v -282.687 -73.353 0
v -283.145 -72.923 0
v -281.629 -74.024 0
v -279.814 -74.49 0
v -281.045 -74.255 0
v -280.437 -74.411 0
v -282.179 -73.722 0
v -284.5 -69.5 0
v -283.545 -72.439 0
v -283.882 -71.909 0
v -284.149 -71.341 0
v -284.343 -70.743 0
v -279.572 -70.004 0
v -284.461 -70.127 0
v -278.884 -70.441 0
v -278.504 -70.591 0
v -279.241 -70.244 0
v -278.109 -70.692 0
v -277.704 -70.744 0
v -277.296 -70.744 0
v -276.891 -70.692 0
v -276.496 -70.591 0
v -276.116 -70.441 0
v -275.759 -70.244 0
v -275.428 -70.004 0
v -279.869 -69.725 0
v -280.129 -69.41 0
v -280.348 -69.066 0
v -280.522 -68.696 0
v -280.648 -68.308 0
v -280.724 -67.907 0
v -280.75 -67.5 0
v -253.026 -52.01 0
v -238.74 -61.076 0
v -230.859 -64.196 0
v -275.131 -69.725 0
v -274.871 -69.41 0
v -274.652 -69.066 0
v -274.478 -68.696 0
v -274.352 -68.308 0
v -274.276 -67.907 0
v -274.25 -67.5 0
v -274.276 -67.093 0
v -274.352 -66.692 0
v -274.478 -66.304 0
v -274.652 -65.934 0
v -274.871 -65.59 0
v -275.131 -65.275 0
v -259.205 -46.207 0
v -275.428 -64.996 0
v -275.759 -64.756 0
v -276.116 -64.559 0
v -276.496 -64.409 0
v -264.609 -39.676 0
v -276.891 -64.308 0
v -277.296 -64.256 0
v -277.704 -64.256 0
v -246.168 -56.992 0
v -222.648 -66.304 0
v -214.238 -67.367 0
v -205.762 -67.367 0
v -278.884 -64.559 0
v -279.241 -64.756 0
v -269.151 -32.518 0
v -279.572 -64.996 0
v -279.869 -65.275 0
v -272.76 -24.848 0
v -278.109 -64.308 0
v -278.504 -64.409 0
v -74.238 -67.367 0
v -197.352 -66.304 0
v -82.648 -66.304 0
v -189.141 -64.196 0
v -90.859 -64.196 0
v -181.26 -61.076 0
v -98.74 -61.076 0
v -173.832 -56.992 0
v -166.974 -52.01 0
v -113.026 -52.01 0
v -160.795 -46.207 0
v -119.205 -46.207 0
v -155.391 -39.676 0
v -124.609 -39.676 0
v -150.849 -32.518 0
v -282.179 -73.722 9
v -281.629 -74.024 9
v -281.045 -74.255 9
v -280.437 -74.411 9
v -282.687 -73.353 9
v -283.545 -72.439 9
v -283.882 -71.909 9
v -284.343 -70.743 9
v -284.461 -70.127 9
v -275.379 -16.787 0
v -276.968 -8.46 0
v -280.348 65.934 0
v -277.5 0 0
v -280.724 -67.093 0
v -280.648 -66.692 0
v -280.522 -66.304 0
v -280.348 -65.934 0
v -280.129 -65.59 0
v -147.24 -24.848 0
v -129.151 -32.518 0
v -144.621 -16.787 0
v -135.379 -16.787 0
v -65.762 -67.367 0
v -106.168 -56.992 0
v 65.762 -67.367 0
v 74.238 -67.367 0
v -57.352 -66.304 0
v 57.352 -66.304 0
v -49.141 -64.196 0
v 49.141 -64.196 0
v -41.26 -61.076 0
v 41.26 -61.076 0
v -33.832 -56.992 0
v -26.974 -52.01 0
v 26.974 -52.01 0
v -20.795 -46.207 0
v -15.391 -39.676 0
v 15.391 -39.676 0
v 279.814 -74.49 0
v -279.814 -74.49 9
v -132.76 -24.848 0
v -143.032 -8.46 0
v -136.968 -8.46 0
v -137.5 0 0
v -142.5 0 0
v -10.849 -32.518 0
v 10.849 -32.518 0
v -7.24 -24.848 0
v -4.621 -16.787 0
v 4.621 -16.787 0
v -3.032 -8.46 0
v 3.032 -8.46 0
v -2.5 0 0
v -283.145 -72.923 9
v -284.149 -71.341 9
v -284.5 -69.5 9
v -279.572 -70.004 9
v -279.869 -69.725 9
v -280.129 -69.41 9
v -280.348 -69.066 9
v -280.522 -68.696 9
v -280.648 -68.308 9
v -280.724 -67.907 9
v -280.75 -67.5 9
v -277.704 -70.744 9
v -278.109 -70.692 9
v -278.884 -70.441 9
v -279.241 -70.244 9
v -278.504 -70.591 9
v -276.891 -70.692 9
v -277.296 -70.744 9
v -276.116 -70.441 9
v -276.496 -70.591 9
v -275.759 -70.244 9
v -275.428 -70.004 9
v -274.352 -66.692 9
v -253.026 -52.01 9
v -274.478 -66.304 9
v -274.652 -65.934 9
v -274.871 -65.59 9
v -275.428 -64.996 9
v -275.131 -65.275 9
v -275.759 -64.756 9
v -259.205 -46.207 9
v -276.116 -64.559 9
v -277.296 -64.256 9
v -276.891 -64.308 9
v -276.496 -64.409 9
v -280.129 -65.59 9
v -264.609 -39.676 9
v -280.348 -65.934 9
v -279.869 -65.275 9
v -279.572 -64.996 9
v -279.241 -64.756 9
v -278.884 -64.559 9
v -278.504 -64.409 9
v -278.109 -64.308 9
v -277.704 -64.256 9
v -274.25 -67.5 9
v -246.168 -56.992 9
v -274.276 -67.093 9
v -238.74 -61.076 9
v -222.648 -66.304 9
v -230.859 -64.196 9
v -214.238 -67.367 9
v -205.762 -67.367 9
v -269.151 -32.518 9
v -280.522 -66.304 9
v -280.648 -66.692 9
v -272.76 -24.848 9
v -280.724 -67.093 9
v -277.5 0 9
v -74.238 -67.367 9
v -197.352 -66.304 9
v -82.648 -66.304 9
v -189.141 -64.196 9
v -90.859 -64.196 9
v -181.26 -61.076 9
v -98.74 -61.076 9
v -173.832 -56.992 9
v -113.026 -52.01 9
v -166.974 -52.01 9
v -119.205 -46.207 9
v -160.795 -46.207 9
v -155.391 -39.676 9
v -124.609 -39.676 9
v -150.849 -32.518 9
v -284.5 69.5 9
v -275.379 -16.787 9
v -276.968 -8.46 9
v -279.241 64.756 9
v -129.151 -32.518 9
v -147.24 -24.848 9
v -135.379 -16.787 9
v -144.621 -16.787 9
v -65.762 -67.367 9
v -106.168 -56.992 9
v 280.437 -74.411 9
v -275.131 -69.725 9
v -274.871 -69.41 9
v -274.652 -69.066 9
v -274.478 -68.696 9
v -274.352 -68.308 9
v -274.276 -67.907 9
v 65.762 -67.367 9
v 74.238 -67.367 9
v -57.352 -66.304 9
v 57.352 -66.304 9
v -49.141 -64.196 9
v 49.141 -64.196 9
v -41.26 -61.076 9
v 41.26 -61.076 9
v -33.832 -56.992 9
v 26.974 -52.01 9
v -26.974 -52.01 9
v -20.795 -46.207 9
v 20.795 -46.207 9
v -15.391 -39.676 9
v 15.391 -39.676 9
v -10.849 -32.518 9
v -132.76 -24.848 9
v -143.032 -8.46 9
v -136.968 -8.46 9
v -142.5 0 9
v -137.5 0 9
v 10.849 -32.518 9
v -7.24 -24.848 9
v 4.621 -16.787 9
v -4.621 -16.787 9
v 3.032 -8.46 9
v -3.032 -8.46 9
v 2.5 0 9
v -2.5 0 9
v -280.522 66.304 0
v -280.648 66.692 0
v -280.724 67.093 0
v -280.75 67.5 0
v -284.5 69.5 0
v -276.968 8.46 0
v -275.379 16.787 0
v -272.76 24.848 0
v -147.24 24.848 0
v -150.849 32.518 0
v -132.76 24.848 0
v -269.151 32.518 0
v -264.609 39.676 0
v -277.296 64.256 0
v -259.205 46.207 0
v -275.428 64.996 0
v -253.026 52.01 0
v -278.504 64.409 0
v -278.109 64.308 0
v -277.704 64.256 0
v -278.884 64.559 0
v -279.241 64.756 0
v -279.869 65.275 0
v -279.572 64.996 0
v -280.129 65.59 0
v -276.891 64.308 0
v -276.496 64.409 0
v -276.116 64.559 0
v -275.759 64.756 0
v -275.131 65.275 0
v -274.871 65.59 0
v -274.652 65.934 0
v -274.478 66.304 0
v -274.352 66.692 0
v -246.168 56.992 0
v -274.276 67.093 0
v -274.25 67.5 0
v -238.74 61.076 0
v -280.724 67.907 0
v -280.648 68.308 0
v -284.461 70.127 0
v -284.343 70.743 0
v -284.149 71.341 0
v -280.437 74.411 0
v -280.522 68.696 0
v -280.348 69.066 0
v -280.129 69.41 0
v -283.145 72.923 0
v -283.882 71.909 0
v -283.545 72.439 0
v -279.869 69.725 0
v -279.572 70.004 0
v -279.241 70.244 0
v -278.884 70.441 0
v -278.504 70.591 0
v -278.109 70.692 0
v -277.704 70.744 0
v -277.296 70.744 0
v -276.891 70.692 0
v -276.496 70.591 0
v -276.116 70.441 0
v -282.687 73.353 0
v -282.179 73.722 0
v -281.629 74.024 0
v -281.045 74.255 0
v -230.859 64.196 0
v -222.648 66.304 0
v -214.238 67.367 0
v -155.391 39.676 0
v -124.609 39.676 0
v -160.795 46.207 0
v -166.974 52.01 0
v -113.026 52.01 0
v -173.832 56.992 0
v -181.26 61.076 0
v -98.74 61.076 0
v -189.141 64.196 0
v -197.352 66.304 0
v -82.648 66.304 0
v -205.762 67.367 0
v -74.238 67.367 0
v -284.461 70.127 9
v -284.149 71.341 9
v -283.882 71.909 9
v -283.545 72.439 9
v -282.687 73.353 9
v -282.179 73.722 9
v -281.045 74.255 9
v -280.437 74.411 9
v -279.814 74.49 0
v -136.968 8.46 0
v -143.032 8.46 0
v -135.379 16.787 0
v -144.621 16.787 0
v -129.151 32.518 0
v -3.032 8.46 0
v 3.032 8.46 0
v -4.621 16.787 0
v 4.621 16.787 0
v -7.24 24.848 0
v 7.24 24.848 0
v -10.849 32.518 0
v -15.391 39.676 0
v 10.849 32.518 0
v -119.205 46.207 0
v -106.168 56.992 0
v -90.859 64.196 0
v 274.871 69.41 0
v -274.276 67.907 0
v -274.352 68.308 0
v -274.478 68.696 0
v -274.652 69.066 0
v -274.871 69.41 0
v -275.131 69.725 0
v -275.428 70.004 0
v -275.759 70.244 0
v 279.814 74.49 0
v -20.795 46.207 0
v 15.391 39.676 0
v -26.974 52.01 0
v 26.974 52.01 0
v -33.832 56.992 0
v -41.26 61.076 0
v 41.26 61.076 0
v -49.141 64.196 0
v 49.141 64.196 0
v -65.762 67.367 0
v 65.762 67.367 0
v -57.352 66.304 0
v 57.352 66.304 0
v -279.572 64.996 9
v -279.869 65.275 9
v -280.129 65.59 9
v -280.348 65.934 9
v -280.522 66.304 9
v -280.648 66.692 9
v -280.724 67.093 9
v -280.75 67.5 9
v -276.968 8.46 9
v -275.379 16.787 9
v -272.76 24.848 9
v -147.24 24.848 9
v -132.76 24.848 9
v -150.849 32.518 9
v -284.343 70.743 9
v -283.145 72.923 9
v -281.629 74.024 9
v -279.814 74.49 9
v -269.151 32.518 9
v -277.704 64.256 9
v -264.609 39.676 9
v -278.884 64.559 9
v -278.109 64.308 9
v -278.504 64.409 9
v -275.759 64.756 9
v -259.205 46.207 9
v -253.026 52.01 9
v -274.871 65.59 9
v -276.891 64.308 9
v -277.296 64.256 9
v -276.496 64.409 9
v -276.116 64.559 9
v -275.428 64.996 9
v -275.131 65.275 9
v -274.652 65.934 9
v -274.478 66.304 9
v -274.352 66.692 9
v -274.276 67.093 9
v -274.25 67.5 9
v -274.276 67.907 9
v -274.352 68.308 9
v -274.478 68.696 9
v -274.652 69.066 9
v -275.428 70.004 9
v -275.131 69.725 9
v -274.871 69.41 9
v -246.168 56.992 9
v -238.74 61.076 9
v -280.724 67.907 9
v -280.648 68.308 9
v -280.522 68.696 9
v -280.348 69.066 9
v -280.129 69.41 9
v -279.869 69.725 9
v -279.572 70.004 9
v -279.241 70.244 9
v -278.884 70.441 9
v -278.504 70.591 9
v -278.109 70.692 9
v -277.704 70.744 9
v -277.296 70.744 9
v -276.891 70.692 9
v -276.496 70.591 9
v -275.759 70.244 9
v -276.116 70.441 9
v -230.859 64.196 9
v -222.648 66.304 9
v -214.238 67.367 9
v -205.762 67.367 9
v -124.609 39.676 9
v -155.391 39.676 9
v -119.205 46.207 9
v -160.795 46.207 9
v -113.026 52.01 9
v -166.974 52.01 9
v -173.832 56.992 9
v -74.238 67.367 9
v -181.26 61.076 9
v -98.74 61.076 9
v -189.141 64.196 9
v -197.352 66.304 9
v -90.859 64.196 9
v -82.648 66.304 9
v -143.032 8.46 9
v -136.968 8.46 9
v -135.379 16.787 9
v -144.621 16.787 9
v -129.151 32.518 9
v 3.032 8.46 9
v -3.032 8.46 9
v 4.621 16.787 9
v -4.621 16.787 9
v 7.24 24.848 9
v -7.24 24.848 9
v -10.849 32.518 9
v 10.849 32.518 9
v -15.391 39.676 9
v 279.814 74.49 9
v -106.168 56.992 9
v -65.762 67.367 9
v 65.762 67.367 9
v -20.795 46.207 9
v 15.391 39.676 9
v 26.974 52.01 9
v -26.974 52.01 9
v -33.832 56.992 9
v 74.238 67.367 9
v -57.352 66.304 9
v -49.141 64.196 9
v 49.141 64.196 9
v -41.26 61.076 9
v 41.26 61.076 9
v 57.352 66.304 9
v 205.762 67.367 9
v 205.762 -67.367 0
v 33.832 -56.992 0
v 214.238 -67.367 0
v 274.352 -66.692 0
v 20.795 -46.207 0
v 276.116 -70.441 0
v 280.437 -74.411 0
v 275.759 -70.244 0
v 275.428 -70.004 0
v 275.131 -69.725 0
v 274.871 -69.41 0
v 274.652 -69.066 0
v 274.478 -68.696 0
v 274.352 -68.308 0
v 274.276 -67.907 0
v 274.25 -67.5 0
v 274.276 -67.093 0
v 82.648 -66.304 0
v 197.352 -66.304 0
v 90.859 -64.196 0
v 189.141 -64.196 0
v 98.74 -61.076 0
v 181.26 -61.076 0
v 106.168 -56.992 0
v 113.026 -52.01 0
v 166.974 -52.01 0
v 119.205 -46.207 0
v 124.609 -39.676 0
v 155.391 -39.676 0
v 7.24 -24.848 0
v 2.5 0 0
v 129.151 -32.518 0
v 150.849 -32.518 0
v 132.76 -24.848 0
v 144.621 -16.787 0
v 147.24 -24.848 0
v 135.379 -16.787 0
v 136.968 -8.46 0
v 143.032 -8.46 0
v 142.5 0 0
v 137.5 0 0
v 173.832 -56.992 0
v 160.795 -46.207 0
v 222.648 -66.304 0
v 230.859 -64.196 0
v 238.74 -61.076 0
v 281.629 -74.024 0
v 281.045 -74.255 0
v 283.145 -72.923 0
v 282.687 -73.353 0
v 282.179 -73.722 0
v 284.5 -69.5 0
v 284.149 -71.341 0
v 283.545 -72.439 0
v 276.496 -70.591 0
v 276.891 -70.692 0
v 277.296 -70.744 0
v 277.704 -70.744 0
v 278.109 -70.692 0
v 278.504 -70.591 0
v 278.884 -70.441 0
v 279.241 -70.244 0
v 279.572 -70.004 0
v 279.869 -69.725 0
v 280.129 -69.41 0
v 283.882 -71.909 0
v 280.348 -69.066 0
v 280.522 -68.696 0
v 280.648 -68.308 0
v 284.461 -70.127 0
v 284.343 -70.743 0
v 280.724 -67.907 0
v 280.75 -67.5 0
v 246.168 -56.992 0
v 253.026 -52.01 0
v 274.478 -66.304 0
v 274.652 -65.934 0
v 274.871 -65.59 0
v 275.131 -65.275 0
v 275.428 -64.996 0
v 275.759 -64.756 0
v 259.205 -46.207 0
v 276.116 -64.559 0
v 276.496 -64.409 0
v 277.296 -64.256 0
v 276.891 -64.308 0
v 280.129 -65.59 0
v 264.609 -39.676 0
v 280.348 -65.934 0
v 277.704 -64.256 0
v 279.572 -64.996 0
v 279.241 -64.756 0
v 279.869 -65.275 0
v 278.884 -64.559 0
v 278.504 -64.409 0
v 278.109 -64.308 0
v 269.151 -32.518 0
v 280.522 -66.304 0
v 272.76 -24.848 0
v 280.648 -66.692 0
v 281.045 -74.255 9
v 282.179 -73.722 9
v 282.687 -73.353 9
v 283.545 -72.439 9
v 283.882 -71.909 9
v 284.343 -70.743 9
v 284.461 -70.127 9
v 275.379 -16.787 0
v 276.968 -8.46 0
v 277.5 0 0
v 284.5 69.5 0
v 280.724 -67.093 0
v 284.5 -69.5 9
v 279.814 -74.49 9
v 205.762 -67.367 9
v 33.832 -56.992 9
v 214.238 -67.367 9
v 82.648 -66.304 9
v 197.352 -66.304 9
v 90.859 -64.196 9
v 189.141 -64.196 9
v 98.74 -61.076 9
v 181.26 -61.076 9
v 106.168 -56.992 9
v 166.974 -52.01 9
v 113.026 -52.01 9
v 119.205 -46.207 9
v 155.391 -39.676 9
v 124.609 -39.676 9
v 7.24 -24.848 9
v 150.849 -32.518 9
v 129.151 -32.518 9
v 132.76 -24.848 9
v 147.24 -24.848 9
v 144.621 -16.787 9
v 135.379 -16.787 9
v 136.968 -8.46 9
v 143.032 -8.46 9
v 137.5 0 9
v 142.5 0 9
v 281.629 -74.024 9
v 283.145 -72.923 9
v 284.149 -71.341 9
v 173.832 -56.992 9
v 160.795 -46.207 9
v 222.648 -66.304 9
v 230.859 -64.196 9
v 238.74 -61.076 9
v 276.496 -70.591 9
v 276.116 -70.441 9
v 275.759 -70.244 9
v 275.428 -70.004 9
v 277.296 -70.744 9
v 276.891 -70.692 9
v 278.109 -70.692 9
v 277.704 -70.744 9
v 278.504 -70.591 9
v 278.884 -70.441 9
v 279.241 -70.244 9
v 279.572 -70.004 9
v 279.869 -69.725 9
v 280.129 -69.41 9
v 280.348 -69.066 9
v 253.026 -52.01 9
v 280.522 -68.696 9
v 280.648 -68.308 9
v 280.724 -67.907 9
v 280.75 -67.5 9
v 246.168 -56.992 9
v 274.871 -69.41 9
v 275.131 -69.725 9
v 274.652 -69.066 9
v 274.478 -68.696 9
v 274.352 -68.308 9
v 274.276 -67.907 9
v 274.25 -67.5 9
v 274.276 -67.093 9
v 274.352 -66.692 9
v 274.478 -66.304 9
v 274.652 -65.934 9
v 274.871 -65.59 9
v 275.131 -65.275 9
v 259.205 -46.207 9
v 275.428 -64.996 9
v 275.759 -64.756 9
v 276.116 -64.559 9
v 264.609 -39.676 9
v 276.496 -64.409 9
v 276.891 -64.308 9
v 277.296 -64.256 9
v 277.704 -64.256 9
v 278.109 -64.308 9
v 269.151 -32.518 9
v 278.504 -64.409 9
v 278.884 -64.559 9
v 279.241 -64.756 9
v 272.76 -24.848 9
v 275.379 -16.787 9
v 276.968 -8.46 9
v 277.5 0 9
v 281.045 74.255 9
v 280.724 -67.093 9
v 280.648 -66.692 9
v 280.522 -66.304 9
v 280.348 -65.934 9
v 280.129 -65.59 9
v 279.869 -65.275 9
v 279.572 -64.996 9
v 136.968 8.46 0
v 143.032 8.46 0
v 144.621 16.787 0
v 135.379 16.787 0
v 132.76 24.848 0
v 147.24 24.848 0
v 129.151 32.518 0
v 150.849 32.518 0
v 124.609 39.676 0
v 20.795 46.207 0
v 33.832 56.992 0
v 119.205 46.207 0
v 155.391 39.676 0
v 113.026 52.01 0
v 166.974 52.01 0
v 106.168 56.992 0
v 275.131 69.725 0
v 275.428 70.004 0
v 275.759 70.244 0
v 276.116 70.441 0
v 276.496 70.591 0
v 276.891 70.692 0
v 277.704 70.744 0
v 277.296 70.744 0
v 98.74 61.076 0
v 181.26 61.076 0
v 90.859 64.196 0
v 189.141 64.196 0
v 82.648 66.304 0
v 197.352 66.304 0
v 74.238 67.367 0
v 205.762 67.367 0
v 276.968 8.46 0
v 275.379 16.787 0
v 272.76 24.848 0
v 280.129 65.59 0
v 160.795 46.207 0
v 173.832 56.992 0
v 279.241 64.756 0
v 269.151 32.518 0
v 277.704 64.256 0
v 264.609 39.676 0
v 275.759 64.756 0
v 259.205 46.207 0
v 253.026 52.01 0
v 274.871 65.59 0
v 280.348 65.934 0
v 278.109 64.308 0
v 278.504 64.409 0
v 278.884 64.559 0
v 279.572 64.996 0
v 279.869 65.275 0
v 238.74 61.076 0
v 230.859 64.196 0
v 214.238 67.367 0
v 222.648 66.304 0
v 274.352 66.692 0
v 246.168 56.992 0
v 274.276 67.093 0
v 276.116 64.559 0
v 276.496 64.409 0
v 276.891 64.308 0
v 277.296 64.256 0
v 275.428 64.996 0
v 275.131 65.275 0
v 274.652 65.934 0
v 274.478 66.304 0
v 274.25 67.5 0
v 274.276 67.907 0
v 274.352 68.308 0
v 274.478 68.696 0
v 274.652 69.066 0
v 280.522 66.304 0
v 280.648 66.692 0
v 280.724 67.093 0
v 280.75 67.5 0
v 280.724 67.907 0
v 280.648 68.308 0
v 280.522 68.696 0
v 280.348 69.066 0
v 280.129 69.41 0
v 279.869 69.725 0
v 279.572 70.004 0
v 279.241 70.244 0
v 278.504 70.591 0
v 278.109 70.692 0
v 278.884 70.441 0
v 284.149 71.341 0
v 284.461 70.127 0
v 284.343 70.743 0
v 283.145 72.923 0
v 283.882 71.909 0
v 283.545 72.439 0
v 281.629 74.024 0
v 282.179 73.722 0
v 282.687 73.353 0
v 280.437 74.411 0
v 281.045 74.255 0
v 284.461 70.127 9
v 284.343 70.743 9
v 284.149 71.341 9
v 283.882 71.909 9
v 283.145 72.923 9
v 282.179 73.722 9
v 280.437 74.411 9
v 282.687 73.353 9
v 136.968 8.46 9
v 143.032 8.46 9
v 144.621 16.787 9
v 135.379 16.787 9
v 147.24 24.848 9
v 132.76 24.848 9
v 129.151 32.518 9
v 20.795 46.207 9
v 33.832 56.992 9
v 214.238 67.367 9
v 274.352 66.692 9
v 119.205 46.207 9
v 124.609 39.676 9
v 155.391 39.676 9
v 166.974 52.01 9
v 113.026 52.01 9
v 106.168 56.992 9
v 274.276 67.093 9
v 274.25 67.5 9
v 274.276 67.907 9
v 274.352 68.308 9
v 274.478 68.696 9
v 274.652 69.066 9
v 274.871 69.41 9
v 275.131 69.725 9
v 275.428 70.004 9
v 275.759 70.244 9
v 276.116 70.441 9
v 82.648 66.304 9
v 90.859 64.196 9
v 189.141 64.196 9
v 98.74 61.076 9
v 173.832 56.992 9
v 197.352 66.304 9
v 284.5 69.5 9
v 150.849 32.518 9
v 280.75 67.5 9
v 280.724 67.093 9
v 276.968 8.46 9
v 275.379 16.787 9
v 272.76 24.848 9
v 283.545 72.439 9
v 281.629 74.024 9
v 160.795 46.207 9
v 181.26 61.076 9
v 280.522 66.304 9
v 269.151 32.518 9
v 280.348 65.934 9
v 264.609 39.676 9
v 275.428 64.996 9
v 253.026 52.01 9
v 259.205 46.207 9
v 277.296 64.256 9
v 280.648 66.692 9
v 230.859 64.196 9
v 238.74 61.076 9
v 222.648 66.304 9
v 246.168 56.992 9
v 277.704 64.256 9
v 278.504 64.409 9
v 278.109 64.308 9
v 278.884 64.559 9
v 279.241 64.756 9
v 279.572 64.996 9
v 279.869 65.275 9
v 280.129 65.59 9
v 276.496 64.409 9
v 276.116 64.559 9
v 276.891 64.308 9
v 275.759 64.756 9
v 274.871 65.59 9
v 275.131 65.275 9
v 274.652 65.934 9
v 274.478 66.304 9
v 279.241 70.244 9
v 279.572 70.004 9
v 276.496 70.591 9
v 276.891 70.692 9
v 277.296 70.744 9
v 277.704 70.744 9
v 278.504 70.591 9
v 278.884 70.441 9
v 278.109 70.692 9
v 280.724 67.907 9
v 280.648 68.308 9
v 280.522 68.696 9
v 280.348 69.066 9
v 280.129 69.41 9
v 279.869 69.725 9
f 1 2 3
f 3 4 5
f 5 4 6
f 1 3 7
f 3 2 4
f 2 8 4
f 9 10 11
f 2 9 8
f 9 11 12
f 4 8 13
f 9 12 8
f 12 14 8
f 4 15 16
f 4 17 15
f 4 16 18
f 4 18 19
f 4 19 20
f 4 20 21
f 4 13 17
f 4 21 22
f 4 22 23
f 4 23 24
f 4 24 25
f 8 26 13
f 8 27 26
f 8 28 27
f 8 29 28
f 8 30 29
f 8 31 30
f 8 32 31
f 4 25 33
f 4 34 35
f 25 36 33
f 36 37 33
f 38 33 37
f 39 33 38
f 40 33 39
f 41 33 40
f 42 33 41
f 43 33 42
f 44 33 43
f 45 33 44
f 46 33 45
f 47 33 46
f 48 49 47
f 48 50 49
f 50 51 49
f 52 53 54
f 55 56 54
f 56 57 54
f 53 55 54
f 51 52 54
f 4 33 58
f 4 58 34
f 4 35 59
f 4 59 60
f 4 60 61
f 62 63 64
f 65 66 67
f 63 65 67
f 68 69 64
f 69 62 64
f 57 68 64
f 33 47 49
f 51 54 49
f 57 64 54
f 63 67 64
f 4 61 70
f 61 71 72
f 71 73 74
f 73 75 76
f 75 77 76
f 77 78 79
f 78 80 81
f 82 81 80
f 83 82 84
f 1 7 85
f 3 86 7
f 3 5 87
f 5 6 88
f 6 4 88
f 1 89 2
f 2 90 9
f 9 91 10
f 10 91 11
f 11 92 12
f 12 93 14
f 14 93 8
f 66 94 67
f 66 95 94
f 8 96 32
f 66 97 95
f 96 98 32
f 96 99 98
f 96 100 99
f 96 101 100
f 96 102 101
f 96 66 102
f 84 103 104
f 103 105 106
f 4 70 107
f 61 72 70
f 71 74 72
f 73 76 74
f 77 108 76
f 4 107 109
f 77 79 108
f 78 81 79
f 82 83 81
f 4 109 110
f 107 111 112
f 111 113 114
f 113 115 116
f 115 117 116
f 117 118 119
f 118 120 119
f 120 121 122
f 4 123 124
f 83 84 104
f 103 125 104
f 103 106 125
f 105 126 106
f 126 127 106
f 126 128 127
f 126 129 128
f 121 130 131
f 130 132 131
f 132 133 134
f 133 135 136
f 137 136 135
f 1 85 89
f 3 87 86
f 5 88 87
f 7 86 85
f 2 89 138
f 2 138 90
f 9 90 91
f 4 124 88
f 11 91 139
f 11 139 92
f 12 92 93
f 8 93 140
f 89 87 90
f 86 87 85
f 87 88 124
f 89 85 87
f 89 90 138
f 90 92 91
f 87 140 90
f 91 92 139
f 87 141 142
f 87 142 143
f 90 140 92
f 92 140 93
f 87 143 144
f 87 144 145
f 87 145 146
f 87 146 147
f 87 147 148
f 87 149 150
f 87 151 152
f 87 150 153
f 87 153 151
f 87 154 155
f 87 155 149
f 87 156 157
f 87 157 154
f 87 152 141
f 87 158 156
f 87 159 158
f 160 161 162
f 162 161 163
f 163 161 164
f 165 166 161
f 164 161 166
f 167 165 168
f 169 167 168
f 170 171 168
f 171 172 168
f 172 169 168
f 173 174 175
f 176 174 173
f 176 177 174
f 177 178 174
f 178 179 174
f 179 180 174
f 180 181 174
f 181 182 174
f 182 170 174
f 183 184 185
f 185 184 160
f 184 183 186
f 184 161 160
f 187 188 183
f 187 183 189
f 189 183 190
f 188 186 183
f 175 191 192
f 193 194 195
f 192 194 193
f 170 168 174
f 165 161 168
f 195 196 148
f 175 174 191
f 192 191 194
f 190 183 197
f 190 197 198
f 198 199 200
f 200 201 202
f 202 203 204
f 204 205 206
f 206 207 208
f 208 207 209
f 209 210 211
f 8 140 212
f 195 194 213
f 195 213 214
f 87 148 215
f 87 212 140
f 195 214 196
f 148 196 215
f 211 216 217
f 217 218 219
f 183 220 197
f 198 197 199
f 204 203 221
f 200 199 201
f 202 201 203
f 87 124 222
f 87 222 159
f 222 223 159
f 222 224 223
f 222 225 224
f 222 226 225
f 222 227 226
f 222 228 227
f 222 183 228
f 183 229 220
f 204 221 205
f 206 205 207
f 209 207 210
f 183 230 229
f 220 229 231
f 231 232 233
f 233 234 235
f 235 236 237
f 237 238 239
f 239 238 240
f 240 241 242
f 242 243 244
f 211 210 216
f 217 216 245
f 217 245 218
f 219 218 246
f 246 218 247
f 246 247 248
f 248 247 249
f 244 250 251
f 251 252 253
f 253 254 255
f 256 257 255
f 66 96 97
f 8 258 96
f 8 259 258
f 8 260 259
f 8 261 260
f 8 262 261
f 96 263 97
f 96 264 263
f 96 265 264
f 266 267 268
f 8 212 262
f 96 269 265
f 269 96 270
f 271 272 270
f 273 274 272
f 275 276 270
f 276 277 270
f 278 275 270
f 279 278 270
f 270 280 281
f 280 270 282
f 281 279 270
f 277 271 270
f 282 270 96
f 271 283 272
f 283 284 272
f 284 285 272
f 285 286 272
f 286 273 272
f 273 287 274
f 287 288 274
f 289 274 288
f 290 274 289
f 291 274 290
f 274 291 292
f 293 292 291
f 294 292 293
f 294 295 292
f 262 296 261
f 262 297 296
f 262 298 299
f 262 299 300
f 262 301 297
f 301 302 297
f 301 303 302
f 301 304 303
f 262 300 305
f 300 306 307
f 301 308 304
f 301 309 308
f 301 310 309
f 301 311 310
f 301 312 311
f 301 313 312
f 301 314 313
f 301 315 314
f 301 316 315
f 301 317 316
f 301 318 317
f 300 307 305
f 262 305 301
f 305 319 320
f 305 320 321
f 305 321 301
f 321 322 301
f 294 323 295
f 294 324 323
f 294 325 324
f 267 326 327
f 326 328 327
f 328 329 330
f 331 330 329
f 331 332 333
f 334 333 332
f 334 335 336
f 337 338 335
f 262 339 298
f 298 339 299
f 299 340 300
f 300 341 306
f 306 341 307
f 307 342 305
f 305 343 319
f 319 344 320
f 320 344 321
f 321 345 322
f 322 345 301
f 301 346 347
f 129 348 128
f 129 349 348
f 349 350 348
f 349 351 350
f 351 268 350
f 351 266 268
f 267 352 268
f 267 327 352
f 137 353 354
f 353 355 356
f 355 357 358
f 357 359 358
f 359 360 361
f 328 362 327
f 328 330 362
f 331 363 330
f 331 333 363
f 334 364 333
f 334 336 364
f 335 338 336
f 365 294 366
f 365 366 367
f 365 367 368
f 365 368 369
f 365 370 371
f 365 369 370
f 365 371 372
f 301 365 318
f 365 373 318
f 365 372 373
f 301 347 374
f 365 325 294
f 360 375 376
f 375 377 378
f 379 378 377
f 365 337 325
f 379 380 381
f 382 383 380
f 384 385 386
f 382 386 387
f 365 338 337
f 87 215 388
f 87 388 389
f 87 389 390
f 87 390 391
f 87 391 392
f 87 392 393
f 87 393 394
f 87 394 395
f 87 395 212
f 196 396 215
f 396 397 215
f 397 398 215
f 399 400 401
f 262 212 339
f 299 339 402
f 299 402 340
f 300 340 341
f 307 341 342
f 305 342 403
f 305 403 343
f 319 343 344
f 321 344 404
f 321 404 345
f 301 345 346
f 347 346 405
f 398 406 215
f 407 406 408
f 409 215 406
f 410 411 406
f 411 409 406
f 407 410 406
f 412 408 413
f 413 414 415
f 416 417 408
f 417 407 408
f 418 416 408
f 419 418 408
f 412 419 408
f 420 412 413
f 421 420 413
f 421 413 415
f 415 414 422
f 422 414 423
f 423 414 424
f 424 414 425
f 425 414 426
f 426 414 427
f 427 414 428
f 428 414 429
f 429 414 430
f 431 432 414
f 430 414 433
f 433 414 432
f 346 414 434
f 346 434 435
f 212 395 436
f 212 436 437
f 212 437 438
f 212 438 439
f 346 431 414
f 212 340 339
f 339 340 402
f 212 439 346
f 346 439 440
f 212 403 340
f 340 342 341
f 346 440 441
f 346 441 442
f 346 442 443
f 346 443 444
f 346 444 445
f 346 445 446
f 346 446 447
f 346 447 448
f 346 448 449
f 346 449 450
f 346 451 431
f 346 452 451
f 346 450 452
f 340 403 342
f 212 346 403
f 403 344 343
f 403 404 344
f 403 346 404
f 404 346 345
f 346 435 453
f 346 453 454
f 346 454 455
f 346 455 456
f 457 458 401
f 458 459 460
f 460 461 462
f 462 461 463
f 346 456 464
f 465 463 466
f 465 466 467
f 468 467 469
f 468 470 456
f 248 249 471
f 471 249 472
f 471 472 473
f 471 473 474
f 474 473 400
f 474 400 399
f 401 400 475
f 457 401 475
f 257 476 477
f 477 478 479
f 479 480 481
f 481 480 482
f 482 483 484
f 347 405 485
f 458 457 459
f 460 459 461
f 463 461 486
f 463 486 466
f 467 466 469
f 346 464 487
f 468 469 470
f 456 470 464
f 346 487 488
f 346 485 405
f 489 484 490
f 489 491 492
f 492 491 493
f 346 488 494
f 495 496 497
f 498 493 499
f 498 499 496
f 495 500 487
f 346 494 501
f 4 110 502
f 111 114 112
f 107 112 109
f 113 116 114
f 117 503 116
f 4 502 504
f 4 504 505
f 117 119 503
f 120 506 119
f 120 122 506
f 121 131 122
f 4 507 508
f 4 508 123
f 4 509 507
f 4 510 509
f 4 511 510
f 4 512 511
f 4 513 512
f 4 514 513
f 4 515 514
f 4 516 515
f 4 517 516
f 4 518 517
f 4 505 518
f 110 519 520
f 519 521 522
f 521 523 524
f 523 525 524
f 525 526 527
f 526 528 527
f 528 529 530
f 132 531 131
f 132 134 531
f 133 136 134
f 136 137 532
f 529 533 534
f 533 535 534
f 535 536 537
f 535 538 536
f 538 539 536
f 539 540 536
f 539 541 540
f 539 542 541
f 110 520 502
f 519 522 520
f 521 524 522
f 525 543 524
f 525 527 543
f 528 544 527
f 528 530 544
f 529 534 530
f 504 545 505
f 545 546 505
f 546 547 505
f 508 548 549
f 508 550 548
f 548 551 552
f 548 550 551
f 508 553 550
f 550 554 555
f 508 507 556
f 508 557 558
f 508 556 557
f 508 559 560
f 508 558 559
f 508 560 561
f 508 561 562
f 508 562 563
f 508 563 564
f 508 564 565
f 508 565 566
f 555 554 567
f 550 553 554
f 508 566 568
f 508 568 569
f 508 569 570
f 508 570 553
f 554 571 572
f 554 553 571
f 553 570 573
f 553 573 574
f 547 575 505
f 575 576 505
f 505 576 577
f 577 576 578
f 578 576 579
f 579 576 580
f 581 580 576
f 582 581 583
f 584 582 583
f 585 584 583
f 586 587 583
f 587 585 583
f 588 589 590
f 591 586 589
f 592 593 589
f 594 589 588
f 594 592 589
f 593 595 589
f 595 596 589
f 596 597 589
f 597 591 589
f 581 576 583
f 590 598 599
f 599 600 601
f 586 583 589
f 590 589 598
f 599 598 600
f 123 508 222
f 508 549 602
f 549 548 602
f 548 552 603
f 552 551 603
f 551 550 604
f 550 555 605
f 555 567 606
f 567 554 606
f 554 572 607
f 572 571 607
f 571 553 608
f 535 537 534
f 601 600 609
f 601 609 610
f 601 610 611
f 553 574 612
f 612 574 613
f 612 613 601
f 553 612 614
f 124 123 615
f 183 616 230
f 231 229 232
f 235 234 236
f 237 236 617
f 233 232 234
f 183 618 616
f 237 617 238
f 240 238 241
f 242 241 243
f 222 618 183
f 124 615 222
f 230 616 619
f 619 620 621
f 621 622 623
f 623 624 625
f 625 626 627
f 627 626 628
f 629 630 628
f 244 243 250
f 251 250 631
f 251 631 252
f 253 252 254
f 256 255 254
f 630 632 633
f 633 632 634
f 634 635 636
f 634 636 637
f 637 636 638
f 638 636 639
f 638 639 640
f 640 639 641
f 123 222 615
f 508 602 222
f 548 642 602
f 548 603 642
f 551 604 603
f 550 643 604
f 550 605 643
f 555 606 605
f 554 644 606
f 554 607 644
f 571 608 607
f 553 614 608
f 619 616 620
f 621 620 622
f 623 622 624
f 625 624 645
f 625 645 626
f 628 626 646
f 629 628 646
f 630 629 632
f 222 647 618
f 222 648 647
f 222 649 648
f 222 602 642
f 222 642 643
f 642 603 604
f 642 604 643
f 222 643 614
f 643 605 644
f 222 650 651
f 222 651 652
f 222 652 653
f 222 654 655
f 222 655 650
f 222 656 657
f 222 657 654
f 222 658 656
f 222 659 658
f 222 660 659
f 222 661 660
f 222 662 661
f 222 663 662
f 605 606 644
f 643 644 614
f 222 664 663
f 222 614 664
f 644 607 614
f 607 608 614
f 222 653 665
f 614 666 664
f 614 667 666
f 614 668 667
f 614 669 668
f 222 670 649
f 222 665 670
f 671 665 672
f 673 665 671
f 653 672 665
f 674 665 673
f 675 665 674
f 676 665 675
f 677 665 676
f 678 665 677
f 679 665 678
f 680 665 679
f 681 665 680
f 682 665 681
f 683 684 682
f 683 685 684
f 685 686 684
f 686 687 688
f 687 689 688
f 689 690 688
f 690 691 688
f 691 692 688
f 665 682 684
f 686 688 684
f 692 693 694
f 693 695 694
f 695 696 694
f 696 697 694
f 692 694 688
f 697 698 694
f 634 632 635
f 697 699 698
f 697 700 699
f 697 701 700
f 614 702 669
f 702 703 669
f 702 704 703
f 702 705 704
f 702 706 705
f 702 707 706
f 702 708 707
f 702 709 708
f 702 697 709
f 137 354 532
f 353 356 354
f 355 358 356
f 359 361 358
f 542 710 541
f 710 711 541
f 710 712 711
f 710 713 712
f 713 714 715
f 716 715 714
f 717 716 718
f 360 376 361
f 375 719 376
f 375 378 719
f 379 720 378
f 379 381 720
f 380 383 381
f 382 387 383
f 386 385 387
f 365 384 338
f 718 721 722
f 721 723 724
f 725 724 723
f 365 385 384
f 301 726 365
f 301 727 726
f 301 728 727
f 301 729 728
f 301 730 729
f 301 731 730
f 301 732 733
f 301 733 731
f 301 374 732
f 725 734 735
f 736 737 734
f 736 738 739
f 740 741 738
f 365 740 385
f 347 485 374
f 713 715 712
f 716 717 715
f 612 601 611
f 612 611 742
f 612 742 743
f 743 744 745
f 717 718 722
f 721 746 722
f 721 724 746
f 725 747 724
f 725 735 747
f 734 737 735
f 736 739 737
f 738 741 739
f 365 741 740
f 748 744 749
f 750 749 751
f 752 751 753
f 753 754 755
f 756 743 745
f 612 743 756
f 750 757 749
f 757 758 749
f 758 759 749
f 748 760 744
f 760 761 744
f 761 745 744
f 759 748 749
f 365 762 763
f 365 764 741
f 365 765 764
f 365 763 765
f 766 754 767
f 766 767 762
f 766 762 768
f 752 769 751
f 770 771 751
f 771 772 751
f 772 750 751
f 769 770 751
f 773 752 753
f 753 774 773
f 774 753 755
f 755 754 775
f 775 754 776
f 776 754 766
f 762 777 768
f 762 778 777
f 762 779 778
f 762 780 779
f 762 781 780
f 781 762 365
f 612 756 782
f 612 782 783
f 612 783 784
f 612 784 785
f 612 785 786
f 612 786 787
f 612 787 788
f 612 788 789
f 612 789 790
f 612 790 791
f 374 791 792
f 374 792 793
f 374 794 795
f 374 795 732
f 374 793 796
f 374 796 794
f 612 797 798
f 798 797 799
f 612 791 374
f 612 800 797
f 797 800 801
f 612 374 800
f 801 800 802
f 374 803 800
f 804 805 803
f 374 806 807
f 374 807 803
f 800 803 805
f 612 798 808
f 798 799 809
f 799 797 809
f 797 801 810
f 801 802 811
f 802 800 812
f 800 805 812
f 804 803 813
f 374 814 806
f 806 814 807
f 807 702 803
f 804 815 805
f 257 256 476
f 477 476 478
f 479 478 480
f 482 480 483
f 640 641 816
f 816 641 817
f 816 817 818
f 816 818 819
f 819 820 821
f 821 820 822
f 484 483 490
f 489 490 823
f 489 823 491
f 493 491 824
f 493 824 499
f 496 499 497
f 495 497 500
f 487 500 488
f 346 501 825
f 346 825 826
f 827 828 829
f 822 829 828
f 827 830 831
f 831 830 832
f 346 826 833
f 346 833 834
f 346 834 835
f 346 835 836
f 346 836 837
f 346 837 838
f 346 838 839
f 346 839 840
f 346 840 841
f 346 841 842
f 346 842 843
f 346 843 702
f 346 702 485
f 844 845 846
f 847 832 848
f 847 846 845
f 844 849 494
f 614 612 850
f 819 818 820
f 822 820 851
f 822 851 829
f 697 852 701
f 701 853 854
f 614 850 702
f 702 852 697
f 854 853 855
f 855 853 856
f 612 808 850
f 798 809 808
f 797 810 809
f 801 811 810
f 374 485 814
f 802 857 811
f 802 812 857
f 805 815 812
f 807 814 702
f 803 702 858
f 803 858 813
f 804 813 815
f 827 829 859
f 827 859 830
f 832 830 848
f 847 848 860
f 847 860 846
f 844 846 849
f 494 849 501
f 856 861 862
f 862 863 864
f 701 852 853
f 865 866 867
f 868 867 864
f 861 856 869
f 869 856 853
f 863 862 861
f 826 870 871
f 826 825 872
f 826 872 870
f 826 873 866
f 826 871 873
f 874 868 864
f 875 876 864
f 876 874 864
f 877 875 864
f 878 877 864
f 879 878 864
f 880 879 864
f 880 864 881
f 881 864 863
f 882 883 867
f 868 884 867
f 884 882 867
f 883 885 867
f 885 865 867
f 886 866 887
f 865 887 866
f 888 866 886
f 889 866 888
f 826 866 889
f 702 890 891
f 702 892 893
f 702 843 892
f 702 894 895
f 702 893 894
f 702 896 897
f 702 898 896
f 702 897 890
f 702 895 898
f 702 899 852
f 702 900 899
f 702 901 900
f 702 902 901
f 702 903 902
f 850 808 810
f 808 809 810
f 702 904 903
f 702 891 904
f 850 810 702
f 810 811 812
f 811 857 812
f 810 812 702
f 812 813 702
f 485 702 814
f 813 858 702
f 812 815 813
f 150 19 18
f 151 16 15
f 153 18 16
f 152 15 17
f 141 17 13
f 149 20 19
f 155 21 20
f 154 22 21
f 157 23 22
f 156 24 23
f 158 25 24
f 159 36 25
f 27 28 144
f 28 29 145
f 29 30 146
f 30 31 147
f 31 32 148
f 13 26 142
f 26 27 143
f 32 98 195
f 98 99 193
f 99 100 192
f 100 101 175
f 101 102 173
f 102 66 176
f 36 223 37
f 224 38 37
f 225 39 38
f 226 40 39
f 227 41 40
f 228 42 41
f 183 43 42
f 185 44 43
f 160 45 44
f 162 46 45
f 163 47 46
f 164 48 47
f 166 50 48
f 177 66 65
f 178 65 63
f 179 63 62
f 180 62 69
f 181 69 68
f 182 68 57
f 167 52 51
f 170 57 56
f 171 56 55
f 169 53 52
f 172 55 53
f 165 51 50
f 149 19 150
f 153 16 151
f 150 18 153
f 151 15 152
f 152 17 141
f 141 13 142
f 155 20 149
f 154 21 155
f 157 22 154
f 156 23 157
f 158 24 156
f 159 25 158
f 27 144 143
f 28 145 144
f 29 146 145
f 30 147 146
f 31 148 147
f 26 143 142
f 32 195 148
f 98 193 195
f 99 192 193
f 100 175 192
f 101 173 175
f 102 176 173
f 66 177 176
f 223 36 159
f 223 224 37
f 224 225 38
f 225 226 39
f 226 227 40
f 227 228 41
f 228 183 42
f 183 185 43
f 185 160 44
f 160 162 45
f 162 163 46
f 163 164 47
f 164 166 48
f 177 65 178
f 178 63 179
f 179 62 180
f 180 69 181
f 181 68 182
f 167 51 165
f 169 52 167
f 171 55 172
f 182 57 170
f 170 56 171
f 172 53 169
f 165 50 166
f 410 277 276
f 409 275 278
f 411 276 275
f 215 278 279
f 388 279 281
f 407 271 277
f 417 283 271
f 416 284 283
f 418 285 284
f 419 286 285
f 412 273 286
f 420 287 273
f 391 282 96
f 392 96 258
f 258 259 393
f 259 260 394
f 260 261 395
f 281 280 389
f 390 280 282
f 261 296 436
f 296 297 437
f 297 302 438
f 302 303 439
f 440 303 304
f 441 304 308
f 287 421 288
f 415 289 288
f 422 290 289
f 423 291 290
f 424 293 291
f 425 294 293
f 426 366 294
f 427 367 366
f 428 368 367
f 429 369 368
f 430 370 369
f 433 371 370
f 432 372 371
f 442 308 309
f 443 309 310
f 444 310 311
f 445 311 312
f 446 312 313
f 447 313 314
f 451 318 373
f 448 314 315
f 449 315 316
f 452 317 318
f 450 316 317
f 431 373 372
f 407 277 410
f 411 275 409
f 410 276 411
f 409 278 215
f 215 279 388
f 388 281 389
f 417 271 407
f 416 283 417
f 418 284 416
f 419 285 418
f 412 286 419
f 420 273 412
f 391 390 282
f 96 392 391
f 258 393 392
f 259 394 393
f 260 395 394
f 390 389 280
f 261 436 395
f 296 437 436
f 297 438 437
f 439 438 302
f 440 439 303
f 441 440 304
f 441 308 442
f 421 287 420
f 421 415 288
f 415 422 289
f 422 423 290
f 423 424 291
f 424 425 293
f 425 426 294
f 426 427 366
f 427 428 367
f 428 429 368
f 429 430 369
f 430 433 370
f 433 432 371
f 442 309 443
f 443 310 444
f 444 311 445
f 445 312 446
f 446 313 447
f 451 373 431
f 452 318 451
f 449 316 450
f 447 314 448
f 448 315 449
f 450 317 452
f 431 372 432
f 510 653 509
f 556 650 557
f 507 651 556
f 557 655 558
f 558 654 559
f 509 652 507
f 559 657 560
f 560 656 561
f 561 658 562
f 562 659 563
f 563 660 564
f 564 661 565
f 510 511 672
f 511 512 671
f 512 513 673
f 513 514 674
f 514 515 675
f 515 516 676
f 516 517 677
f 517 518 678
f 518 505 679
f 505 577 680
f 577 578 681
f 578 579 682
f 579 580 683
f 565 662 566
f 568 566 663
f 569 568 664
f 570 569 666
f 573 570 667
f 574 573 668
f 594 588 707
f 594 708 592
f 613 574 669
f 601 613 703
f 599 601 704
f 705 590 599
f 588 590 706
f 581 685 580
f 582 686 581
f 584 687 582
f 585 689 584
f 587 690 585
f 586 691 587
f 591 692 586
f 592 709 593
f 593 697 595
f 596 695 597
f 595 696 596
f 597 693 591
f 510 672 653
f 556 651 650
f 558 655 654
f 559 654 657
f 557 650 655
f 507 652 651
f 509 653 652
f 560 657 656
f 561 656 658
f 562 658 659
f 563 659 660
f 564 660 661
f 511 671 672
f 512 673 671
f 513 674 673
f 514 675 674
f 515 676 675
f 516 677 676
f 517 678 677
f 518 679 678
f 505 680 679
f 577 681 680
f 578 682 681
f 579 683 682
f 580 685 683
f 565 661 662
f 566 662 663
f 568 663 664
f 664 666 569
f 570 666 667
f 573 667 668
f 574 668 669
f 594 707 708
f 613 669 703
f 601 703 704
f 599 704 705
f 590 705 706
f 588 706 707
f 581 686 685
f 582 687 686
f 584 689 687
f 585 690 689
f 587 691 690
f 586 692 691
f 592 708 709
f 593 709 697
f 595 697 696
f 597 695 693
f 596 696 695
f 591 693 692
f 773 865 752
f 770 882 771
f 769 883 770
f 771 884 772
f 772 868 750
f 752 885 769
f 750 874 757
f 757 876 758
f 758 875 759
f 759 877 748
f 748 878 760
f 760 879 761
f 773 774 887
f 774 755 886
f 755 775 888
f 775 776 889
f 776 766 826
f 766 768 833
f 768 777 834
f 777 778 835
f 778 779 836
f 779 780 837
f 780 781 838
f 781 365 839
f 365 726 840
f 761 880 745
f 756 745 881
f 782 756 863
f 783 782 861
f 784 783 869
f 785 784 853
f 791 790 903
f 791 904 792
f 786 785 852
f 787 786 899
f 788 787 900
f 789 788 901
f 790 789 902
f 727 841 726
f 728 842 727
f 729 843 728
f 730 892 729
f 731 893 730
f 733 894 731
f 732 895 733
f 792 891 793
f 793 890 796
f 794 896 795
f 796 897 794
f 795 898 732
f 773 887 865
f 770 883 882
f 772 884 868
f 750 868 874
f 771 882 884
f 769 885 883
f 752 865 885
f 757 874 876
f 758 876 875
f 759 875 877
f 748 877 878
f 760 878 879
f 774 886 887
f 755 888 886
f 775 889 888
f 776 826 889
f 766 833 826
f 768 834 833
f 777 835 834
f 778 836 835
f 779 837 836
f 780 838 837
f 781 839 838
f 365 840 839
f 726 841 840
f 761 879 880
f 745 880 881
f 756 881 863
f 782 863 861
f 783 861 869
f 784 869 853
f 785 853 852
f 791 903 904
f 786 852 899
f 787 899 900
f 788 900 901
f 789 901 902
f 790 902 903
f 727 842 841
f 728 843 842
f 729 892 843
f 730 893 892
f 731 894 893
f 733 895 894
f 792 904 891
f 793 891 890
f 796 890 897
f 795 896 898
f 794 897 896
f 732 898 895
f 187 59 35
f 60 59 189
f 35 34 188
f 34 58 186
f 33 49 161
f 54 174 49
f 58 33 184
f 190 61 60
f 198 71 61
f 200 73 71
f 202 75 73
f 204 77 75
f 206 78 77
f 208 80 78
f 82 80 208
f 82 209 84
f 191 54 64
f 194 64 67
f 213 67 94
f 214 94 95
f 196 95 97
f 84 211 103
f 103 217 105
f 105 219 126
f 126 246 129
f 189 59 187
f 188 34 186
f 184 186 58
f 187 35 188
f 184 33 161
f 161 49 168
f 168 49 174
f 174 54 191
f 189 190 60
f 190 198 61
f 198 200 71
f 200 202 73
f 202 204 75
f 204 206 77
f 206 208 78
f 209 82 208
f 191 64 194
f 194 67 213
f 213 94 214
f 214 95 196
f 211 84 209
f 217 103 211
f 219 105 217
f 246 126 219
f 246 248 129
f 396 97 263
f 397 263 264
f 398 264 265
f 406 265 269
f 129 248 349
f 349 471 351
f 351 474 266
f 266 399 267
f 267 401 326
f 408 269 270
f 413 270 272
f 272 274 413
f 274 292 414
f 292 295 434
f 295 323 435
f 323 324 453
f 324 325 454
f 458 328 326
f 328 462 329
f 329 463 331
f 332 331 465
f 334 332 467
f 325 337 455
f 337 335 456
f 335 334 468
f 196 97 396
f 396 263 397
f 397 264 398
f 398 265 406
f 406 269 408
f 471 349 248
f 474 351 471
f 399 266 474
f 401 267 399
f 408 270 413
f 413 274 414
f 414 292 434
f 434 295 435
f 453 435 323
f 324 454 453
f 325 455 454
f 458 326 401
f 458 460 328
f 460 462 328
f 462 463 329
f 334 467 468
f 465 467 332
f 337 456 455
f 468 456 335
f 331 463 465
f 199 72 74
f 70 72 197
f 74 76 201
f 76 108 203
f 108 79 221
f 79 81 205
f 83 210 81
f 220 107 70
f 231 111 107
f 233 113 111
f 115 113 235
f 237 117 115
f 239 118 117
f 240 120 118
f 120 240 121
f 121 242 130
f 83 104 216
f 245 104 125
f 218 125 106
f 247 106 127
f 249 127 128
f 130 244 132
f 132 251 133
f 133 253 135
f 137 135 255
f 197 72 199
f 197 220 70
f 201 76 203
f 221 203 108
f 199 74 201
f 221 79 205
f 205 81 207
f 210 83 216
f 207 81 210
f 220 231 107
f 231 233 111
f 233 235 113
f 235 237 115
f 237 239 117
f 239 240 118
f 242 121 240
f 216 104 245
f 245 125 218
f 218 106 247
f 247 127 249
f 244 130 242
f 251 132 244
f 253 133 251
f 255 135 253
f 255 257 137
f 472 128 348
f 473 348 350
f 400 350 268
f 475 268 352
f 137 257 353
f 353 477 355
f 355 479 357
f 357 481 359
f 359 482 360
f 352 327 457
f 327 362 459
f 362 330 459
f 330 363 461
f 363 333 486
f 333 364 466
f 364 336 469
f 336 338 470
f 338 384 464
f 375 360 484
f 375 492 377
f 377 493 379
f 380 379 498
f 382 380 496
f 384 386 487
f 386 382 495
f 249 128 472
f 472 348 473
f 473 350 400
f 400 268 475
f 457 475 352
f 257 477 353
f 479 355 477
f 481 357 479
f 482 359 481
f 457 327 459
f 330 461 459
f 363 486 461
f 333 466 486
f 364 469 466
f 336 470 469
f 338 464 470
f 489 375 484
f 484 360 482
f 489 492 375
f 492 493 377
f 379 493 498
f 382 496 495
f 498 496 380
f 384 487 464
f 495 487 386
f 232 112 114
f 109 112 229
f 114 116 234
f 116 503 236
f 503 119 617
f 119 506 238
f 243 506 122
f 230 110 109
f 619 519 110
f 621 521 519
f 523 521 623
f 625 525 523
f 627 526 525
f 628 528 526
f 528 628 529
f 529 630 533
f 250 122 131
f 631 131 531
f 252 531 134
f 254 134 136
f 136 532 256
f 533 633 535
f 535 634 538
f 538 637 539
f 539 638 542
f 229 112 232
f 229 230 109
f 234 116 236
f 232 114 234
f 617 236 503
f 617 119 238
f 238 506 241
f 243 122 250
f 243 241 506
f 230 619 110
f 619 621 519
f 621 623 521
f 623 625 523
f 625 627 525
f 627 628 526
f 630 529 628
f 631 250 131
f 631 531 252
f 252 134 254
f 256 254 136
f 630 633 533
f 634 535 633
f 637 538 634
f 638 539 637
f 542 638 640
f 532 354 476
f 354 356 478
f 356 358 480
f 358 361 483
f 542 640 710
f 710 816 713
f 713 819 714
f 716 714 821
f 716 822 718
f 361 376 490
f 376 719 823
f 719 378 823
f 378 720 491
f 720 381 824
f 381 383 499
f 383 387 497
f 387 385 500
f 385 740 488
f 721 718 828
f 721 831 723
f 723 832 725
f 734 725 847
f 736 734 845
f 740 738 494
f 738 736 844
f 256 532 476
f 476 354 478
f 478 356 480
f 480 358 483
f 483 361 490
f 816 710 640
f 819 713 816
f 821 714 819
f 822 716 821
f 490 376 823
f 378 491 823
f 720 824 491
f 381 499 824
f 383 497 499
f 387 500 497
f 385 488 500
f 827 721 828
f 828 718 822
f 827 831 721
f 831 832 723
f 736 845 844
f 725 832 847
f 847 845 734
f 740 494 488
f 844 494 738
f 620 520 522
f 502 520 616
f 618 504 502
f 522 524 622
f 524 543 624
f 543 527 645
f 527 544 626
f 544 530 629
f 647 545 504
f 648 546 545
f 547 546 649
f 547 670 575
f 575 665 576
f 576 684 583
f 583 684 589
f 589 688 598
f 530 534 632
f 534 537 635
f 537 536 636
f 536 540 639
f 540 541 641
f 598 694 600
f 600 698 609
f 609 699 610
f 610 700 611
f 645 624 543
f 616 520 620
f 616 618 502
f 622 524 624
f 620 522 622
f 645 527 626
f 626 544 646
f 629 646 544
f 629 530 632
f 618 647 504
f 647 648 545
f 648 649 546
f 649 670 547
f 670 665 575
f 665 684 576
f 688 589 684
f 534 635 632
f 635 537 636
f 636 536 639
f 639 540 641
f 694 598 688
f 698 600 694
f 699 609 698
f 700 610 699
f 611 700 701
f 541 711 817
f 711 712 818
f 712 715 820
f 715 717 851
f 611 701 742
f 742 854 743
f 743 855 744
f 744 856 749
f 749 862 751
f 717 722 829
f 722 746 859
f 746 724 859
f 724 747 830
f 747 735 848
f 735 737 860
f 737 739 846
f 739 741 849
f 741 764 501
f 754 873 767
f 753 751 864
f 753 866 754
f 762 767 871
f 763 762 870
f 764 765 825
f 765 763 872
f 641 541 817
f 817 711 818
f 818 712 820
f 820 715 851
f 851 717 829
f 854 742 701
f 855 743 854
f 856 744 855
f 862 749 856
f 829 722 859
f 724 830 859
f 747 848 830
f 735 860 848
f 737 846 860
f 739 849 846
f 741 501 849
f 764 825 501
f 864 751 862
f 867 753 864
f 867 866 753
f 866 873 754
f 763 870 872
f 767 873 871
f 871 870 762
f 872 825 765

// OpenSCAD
$fn = 50;

difference() {
	union() {
		hull() {
			translate(v = [-279.5, 69.5, 0]) {
				cylinder(h = 9, r = 5);
			}
			translate(v = [279.5, 69.5, 0]) {
				cylinder(h = 9, r = 5);
			}
			translate(v = [-279.5, -69.5, 0]) {
				cylinder(h = 9, r = 5);
			}
			translate(v = [279.5, -69.5, 0]) {
				cylinder(h = 9, r = 5);
			}
		}
	}
	union() {
		translate(v = [-277.5, -67.5, -100.0]) {
			cylinder(h = 200, r = 3.25);
		}
		translate(v = [-277.5, 67.5, -100.0]) {
			cylinder(h = 200, r = 3.25);
		}
		translate(v = [277.5, -67.5, -100.0]) {
			cylinder(h = 200, r = 3.25);
		}
		translate(v = [277.5, 67.5, -100.0]) {
			cylinder(h = 200, r = 3.25);
		}
		translate(v = [-277.5, -67.5, -100.0]) {
			cylinder(h = 200, r = 1.8);
		}
		translate(v = [-277.5, 67.5, -100.0]) {
			cylinder(h = 200, r = 1.8);
		}
		translate(v = [277.5, -67.5, -100.0]) {
			cylinder(h = 200, r = 1.8);
		}
		translate(v = [277.5, 67.5, -100.0]) {
			cylinder(h = 200, r = 1.8);
		}
		translate(v = [-210.0, 0, 0.0]) {
			cylinder(h = 9, r = 67.5);
		}
		translate(v = [-70.0, 0, 0.0]) {
			cylinder(h = 9, r = 67.5);
		}
		translate(v = [70.0, 0, 0.0]) {
			cylinder(h = 9, r = 67.5);
		}
		translate(v = [210.0, 0, 0.0]) {
			cylinder(h = 9, r = 67.5);
		}
	}
}
